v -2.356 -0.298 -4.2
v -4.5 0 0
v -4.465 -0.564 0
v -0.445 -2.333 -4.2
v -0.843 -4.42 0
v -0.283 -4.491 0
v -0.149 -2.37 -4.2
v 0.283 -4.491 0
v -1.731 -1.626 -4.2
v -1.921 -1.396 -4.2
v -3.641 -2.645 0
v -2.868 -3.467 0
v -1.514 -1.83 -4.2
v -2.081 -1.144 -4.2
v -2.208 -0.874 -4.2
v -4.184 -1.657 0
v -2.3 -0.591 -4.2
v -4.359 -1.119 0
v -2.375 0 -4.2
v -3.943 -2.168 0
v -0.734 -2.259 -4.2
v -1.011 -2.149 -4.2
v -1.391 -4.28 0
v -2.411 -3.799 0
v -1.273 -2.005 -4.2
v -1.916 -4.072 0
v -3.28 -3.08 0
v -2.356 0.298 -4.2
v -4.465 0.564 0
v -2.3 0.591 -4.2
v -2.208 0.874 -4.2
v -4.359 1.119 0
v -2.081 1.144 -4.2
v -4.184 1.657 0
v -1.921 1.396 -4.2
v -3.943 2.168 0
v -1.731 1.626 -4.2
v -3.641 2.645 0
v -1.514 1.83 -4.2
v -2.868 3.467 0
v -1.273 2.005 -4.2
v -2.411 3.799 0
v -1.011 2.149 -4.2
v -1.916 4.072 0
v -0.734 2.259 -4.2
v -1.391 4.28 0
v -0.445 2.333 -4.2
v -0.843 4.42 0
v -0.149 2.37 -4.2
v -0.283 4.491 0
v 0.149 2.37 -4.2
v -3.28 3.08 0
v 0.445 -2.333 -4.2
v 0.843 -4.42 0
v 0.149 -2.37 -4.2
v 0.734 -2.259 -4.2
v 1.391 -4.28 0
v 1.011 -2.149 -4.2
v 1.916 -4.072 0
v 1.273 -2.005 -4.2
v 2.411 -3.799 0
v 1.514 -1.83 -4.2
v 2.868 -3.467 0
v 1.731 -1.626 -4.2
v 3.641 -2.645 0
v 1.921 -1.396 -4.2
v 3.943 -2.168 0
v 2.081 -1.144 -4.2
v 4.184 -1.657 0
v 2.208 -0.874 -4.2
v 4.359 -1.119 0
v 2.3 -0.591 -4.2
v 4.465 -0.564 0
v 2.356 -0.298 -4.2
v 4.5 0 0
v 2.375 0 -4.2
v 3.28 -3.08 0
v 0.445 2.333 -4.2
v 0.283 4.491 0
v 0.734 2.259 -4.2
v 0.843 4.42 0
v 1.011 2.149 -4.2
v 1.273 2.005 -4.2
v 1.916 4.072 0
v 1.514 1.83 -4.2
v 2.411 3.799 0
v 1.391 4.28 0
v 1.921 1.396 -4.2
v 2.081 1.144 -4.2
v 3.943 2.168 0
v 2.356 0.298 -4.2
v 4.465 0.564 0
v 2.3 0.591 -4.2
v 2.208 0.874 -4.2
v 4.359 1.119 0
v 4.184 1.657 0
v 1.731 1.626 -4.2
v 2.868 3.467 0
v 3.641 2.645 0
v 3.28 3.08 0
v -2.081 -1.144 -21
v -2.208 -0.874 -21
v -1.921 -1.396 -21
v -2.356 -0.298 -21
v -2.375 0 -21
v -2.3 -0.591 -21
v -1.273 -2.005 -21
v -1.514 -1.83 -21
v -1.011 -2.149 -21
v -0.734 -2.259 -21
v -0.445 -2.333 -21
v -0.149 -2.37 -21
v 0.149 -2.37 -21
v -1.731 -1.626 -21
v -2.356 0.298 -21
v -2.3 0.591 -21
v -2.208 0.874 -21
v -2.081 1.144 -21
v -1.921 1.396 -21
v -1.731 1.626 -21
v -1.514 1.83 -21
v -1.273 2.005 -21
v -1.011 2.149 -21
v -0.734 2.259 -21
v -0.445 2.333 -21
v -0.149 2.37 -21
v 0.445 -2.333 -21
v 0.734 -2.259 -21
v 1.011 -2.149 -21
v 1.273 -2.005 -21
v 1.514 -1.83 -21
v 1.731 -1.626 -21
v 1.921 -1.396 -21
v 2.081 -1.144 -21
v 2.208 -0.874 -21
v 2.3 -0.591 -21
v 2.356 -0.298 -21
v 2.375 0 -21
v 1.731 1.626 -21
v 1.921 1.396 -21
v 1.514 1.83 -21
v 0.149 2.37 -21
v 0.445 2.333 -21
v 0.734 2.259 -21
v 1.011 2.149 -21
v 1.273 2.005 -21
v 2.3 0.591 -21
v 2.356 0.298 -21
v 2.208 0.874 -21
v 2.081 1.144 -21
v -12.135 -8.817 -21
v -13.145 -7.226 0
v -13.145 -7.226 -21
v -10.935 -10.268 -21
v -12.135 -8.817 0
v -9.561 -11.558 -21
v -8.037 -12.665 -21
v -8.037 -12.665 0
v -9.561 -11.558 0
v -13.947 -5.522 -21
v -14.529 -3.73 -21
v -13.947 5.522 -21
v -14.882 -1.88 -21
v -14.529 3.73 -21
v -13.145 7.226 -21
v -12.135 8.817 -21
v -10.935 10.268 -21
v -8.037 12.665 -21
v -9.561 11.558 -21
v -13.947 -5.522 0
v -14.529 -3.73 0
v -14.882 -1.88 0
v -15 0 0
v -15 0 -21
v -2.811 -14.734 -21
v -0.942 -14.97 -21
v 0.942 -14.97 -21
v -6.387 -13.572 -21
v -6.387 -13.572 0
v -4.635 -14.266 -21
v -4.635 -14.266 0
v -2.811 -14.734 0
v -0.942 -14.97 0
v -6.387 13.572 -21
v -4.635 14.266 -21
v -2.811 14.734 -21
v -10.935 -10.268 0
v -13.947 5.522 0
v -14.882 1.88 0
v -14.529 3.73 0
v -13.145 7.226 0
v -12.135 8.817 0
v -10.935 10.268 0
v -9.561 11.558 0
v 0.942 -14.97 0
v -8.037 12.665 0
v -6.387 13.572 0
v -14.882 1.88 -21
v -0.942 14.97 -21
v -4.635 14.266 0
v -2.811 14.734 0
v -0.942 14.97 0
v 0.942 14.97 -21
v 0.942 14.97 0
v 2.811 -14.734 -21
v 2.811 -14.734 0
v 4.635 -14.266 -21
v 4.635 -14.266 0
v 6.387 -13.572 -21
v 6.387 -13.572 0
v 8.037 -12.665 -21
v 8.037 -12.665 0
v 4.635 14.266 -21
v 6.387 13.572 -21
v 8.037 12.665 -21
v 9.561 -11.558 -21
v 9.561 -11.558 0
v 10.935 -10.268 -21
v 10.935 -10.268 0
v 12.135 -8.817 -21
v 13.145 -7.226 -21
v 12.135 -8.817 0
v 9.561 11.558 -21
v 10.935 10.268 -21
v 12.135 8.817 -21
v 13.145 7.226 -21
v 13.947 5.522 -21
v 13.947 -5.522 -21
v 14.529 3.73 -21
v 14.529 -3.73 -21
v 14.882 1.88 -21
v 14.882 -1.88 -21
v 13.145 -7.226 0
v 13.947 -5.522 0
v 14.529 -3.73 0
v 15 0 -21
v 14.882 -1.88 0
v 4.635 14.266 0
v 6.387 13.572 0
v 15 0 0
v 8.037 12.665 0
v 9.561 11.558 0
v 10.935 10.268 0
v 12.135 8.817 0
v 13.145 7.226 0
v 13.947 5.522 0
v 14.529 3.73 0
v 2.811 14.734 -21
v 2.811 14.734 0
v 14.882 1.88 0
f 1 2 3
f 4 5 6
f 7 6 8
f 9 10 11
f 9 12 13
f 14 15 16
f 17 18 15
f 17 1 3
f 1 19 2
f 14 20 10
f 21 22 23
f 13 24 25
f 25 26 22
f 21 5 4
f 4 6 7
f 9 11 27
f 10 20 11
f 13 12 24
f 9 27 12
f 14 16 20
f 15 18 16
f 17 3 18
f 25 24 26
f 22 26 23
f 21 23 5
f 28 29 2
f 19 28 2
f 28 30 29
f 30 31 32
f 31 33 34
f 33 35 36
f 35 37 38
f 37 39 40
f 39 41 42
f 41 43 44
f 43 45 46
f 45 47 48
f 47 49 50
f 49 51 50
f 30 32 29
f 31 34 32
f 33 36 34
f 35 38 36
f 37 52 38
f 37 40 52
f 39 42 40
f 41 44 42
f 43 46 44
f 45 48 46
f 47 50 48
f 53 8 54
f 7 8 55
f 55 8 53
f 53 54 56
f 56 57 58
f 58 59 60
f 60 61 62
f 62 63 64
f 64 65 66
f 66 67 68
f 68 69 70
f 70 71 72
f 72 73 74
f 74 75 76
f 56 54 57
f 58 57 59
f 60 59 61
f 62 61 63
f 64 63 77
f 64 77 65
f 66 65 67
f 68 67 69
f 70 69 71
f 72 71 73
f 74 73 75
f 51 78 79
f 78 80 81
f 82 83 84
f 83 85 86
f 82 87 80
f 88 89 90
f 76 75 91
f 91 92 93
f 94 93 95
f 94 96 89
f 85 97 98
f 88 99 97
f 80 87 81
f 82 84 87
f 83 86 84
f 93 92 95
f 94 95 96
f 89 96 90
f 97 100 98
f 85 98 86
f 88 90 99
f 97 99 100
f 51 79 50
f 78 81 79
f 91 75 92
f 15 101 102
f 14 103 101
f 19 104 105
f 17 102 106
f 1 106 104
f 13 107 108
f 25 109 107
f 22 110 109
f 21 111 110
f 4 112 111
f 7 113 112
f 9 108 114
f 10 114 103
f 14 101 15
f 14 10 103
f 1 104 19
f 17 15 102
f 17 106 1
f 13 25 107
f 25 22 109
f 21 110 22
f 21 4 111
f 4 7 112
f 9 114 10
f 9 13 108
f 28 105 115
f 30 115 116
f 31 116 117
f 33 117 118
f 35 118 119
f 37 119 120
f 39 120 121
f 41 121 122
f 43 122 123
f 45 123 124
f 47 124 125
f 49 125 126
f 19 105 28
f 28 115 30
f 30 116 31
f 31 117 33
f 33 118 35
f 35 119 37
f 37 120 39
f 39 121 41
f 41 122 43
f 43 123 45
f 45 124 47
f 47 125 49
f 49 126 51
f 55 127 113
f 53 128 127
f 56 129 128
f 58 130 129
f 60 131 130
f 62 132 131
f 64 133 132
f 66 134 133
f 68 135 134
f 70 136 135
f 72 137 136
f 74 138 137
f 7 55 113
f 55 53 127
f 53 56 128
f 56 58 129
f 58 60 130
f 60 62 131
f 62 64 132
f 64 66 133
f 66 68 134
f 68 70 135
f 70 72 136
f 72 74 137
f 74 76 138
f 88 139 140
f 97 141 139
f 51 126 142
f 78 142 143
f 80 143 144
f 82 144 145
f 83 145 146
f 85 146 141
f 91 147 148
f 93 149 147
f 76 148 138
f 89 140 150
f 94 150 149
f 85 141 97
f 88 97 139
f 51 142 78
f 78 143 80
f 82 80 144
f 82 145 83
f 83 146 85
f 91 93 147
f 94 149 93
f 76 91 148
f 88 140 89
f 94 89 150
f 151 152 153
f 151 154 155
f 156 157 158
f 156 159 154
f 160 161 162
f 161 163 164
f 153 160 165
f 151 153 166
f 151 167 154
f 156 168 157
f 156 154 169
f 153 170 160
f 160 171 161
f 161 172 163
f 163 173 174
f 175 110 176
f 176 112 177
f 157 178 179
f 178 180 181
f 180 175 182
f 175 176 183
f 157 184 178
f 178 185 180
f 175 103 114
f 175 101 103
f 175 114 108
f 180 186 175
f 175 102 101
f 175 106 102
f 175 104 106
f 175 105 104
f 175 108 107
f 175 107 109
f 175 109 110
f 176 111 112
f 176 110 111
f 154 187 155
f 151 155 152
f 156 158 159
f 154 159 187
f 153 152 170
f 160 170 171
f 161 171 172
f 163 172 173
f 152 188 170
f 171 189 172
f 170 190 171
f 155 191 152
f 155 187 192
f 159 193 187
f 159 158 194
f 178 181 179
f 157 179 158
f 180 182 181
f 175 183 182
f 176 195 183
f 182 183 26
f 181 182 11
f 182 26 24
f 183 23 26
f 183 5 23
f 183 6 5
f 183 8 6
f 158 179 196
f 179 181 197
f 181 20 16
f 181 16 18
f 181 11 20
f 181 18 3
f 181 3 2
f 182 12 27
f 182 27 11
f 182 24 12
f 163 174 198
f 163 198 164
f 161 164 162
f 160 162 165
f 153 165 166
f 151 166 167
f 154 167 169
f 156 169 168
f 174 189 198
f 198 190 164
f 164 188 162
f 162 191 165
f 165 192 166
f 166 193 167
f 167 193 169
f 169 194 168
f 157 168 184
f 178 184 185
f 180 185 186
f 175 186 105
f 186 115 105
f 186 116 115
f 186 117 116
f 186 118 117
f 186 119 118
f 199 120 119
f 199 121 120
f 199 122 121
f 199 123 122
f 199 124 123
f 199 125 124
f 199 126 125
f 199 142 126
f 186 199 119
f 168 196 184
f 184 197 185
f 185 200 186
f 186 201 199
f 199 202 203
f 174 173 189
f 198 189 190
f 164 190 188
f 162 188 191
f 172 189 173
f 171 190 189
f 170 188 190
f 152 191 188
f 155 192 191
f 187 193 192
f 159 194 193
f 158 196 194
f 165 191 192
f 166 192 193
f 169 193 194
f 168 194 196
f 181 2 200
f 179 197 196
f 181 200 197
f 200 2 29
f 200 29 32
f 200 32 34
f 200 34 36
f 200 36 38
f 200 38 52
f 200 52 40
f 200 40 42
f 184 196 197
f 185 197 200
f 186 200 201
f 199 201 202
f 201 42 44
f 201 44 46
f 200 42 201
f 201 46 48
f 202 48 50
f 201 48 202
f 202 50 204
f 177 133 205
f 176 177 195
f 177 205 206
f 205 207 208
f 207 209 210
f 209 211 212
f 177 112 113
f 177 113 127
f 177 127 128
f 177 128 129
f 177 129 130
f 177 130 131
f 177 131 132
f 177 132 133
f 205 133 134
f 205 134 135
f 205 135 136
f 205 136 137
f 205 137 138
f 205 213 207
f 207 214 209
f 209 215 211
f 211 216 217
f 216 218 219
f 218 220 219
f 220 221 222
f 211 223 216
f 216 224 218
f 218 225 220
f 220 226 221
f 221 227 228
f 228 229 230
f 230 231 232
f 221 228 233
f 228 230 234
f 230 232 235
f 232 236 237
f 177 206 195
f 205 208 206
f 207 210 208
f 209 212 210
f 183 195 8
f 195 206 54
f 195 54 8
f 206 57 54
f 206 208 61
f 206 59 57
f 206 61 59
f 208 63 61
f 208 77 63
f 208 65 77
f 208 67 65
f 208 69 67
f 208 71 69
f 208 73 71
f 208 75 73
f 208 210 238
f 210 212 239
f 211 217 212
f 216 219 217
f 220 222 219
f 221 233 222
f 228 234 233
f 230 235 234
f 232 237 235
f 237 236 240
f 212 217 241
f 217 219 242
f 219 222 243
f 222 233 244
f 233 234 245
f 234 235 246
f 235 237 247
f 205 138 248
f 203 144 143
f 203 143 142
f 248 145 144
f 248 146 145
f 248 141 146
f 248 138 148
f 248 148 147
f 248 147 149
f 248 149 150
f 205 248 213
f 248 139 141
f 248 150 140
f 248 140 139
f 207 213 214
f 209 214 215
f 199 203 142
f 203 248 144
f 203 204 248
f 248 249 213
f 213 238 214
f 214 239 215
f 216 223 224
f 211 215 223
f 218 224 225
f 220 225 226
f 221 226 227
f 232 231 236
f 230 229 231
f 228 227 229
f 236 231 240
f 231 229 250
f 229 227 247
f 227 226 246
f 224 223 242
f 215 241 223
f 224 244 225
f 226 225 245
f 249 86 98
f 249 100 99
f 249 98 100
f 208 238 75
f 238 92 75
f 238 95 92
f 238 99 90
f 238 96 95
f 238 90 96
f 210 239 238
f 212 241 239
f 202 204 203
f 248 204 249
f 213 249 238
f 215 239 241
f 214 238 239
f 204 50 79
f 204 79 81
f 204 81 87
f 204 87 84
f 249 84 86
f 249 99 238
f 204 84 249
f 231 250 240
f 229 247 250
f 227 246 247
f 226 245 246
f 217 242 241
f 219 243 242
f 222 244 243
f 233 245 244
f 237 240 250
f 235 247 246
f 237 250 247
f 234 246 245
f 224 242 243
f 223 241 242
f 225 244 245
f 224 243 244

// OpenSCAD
$fn = 50;

difference() {
	union() {
		translate(v = [0, 0, -21.0]) {
			cylinder(h = 21, r = 15.0);
		}
	}
	union() {
		translate(v = [0, 0, 0]) {
			rotate(a = [0, 0, 0]) {
				difference() {
					union() {
						translate(v = [0, 0, -24.0]) {
							cylinder(h = 24, r = 2.25);
						}
						translate(v = [0, 0, -4.2]) {
							cylinder(h = 4.2, r1 = 2.375, r2 = 4.5);
						}
						translate(v = [0, 0, -24.0]) {
							cylinder(h = 24, r = 2.375);
						}
						translate(v = [0, 0, -24.0]) {
							cylinder(h = 24, r = 2.25);
						}
					}
					union();
				}
			}
		}
	}
}
